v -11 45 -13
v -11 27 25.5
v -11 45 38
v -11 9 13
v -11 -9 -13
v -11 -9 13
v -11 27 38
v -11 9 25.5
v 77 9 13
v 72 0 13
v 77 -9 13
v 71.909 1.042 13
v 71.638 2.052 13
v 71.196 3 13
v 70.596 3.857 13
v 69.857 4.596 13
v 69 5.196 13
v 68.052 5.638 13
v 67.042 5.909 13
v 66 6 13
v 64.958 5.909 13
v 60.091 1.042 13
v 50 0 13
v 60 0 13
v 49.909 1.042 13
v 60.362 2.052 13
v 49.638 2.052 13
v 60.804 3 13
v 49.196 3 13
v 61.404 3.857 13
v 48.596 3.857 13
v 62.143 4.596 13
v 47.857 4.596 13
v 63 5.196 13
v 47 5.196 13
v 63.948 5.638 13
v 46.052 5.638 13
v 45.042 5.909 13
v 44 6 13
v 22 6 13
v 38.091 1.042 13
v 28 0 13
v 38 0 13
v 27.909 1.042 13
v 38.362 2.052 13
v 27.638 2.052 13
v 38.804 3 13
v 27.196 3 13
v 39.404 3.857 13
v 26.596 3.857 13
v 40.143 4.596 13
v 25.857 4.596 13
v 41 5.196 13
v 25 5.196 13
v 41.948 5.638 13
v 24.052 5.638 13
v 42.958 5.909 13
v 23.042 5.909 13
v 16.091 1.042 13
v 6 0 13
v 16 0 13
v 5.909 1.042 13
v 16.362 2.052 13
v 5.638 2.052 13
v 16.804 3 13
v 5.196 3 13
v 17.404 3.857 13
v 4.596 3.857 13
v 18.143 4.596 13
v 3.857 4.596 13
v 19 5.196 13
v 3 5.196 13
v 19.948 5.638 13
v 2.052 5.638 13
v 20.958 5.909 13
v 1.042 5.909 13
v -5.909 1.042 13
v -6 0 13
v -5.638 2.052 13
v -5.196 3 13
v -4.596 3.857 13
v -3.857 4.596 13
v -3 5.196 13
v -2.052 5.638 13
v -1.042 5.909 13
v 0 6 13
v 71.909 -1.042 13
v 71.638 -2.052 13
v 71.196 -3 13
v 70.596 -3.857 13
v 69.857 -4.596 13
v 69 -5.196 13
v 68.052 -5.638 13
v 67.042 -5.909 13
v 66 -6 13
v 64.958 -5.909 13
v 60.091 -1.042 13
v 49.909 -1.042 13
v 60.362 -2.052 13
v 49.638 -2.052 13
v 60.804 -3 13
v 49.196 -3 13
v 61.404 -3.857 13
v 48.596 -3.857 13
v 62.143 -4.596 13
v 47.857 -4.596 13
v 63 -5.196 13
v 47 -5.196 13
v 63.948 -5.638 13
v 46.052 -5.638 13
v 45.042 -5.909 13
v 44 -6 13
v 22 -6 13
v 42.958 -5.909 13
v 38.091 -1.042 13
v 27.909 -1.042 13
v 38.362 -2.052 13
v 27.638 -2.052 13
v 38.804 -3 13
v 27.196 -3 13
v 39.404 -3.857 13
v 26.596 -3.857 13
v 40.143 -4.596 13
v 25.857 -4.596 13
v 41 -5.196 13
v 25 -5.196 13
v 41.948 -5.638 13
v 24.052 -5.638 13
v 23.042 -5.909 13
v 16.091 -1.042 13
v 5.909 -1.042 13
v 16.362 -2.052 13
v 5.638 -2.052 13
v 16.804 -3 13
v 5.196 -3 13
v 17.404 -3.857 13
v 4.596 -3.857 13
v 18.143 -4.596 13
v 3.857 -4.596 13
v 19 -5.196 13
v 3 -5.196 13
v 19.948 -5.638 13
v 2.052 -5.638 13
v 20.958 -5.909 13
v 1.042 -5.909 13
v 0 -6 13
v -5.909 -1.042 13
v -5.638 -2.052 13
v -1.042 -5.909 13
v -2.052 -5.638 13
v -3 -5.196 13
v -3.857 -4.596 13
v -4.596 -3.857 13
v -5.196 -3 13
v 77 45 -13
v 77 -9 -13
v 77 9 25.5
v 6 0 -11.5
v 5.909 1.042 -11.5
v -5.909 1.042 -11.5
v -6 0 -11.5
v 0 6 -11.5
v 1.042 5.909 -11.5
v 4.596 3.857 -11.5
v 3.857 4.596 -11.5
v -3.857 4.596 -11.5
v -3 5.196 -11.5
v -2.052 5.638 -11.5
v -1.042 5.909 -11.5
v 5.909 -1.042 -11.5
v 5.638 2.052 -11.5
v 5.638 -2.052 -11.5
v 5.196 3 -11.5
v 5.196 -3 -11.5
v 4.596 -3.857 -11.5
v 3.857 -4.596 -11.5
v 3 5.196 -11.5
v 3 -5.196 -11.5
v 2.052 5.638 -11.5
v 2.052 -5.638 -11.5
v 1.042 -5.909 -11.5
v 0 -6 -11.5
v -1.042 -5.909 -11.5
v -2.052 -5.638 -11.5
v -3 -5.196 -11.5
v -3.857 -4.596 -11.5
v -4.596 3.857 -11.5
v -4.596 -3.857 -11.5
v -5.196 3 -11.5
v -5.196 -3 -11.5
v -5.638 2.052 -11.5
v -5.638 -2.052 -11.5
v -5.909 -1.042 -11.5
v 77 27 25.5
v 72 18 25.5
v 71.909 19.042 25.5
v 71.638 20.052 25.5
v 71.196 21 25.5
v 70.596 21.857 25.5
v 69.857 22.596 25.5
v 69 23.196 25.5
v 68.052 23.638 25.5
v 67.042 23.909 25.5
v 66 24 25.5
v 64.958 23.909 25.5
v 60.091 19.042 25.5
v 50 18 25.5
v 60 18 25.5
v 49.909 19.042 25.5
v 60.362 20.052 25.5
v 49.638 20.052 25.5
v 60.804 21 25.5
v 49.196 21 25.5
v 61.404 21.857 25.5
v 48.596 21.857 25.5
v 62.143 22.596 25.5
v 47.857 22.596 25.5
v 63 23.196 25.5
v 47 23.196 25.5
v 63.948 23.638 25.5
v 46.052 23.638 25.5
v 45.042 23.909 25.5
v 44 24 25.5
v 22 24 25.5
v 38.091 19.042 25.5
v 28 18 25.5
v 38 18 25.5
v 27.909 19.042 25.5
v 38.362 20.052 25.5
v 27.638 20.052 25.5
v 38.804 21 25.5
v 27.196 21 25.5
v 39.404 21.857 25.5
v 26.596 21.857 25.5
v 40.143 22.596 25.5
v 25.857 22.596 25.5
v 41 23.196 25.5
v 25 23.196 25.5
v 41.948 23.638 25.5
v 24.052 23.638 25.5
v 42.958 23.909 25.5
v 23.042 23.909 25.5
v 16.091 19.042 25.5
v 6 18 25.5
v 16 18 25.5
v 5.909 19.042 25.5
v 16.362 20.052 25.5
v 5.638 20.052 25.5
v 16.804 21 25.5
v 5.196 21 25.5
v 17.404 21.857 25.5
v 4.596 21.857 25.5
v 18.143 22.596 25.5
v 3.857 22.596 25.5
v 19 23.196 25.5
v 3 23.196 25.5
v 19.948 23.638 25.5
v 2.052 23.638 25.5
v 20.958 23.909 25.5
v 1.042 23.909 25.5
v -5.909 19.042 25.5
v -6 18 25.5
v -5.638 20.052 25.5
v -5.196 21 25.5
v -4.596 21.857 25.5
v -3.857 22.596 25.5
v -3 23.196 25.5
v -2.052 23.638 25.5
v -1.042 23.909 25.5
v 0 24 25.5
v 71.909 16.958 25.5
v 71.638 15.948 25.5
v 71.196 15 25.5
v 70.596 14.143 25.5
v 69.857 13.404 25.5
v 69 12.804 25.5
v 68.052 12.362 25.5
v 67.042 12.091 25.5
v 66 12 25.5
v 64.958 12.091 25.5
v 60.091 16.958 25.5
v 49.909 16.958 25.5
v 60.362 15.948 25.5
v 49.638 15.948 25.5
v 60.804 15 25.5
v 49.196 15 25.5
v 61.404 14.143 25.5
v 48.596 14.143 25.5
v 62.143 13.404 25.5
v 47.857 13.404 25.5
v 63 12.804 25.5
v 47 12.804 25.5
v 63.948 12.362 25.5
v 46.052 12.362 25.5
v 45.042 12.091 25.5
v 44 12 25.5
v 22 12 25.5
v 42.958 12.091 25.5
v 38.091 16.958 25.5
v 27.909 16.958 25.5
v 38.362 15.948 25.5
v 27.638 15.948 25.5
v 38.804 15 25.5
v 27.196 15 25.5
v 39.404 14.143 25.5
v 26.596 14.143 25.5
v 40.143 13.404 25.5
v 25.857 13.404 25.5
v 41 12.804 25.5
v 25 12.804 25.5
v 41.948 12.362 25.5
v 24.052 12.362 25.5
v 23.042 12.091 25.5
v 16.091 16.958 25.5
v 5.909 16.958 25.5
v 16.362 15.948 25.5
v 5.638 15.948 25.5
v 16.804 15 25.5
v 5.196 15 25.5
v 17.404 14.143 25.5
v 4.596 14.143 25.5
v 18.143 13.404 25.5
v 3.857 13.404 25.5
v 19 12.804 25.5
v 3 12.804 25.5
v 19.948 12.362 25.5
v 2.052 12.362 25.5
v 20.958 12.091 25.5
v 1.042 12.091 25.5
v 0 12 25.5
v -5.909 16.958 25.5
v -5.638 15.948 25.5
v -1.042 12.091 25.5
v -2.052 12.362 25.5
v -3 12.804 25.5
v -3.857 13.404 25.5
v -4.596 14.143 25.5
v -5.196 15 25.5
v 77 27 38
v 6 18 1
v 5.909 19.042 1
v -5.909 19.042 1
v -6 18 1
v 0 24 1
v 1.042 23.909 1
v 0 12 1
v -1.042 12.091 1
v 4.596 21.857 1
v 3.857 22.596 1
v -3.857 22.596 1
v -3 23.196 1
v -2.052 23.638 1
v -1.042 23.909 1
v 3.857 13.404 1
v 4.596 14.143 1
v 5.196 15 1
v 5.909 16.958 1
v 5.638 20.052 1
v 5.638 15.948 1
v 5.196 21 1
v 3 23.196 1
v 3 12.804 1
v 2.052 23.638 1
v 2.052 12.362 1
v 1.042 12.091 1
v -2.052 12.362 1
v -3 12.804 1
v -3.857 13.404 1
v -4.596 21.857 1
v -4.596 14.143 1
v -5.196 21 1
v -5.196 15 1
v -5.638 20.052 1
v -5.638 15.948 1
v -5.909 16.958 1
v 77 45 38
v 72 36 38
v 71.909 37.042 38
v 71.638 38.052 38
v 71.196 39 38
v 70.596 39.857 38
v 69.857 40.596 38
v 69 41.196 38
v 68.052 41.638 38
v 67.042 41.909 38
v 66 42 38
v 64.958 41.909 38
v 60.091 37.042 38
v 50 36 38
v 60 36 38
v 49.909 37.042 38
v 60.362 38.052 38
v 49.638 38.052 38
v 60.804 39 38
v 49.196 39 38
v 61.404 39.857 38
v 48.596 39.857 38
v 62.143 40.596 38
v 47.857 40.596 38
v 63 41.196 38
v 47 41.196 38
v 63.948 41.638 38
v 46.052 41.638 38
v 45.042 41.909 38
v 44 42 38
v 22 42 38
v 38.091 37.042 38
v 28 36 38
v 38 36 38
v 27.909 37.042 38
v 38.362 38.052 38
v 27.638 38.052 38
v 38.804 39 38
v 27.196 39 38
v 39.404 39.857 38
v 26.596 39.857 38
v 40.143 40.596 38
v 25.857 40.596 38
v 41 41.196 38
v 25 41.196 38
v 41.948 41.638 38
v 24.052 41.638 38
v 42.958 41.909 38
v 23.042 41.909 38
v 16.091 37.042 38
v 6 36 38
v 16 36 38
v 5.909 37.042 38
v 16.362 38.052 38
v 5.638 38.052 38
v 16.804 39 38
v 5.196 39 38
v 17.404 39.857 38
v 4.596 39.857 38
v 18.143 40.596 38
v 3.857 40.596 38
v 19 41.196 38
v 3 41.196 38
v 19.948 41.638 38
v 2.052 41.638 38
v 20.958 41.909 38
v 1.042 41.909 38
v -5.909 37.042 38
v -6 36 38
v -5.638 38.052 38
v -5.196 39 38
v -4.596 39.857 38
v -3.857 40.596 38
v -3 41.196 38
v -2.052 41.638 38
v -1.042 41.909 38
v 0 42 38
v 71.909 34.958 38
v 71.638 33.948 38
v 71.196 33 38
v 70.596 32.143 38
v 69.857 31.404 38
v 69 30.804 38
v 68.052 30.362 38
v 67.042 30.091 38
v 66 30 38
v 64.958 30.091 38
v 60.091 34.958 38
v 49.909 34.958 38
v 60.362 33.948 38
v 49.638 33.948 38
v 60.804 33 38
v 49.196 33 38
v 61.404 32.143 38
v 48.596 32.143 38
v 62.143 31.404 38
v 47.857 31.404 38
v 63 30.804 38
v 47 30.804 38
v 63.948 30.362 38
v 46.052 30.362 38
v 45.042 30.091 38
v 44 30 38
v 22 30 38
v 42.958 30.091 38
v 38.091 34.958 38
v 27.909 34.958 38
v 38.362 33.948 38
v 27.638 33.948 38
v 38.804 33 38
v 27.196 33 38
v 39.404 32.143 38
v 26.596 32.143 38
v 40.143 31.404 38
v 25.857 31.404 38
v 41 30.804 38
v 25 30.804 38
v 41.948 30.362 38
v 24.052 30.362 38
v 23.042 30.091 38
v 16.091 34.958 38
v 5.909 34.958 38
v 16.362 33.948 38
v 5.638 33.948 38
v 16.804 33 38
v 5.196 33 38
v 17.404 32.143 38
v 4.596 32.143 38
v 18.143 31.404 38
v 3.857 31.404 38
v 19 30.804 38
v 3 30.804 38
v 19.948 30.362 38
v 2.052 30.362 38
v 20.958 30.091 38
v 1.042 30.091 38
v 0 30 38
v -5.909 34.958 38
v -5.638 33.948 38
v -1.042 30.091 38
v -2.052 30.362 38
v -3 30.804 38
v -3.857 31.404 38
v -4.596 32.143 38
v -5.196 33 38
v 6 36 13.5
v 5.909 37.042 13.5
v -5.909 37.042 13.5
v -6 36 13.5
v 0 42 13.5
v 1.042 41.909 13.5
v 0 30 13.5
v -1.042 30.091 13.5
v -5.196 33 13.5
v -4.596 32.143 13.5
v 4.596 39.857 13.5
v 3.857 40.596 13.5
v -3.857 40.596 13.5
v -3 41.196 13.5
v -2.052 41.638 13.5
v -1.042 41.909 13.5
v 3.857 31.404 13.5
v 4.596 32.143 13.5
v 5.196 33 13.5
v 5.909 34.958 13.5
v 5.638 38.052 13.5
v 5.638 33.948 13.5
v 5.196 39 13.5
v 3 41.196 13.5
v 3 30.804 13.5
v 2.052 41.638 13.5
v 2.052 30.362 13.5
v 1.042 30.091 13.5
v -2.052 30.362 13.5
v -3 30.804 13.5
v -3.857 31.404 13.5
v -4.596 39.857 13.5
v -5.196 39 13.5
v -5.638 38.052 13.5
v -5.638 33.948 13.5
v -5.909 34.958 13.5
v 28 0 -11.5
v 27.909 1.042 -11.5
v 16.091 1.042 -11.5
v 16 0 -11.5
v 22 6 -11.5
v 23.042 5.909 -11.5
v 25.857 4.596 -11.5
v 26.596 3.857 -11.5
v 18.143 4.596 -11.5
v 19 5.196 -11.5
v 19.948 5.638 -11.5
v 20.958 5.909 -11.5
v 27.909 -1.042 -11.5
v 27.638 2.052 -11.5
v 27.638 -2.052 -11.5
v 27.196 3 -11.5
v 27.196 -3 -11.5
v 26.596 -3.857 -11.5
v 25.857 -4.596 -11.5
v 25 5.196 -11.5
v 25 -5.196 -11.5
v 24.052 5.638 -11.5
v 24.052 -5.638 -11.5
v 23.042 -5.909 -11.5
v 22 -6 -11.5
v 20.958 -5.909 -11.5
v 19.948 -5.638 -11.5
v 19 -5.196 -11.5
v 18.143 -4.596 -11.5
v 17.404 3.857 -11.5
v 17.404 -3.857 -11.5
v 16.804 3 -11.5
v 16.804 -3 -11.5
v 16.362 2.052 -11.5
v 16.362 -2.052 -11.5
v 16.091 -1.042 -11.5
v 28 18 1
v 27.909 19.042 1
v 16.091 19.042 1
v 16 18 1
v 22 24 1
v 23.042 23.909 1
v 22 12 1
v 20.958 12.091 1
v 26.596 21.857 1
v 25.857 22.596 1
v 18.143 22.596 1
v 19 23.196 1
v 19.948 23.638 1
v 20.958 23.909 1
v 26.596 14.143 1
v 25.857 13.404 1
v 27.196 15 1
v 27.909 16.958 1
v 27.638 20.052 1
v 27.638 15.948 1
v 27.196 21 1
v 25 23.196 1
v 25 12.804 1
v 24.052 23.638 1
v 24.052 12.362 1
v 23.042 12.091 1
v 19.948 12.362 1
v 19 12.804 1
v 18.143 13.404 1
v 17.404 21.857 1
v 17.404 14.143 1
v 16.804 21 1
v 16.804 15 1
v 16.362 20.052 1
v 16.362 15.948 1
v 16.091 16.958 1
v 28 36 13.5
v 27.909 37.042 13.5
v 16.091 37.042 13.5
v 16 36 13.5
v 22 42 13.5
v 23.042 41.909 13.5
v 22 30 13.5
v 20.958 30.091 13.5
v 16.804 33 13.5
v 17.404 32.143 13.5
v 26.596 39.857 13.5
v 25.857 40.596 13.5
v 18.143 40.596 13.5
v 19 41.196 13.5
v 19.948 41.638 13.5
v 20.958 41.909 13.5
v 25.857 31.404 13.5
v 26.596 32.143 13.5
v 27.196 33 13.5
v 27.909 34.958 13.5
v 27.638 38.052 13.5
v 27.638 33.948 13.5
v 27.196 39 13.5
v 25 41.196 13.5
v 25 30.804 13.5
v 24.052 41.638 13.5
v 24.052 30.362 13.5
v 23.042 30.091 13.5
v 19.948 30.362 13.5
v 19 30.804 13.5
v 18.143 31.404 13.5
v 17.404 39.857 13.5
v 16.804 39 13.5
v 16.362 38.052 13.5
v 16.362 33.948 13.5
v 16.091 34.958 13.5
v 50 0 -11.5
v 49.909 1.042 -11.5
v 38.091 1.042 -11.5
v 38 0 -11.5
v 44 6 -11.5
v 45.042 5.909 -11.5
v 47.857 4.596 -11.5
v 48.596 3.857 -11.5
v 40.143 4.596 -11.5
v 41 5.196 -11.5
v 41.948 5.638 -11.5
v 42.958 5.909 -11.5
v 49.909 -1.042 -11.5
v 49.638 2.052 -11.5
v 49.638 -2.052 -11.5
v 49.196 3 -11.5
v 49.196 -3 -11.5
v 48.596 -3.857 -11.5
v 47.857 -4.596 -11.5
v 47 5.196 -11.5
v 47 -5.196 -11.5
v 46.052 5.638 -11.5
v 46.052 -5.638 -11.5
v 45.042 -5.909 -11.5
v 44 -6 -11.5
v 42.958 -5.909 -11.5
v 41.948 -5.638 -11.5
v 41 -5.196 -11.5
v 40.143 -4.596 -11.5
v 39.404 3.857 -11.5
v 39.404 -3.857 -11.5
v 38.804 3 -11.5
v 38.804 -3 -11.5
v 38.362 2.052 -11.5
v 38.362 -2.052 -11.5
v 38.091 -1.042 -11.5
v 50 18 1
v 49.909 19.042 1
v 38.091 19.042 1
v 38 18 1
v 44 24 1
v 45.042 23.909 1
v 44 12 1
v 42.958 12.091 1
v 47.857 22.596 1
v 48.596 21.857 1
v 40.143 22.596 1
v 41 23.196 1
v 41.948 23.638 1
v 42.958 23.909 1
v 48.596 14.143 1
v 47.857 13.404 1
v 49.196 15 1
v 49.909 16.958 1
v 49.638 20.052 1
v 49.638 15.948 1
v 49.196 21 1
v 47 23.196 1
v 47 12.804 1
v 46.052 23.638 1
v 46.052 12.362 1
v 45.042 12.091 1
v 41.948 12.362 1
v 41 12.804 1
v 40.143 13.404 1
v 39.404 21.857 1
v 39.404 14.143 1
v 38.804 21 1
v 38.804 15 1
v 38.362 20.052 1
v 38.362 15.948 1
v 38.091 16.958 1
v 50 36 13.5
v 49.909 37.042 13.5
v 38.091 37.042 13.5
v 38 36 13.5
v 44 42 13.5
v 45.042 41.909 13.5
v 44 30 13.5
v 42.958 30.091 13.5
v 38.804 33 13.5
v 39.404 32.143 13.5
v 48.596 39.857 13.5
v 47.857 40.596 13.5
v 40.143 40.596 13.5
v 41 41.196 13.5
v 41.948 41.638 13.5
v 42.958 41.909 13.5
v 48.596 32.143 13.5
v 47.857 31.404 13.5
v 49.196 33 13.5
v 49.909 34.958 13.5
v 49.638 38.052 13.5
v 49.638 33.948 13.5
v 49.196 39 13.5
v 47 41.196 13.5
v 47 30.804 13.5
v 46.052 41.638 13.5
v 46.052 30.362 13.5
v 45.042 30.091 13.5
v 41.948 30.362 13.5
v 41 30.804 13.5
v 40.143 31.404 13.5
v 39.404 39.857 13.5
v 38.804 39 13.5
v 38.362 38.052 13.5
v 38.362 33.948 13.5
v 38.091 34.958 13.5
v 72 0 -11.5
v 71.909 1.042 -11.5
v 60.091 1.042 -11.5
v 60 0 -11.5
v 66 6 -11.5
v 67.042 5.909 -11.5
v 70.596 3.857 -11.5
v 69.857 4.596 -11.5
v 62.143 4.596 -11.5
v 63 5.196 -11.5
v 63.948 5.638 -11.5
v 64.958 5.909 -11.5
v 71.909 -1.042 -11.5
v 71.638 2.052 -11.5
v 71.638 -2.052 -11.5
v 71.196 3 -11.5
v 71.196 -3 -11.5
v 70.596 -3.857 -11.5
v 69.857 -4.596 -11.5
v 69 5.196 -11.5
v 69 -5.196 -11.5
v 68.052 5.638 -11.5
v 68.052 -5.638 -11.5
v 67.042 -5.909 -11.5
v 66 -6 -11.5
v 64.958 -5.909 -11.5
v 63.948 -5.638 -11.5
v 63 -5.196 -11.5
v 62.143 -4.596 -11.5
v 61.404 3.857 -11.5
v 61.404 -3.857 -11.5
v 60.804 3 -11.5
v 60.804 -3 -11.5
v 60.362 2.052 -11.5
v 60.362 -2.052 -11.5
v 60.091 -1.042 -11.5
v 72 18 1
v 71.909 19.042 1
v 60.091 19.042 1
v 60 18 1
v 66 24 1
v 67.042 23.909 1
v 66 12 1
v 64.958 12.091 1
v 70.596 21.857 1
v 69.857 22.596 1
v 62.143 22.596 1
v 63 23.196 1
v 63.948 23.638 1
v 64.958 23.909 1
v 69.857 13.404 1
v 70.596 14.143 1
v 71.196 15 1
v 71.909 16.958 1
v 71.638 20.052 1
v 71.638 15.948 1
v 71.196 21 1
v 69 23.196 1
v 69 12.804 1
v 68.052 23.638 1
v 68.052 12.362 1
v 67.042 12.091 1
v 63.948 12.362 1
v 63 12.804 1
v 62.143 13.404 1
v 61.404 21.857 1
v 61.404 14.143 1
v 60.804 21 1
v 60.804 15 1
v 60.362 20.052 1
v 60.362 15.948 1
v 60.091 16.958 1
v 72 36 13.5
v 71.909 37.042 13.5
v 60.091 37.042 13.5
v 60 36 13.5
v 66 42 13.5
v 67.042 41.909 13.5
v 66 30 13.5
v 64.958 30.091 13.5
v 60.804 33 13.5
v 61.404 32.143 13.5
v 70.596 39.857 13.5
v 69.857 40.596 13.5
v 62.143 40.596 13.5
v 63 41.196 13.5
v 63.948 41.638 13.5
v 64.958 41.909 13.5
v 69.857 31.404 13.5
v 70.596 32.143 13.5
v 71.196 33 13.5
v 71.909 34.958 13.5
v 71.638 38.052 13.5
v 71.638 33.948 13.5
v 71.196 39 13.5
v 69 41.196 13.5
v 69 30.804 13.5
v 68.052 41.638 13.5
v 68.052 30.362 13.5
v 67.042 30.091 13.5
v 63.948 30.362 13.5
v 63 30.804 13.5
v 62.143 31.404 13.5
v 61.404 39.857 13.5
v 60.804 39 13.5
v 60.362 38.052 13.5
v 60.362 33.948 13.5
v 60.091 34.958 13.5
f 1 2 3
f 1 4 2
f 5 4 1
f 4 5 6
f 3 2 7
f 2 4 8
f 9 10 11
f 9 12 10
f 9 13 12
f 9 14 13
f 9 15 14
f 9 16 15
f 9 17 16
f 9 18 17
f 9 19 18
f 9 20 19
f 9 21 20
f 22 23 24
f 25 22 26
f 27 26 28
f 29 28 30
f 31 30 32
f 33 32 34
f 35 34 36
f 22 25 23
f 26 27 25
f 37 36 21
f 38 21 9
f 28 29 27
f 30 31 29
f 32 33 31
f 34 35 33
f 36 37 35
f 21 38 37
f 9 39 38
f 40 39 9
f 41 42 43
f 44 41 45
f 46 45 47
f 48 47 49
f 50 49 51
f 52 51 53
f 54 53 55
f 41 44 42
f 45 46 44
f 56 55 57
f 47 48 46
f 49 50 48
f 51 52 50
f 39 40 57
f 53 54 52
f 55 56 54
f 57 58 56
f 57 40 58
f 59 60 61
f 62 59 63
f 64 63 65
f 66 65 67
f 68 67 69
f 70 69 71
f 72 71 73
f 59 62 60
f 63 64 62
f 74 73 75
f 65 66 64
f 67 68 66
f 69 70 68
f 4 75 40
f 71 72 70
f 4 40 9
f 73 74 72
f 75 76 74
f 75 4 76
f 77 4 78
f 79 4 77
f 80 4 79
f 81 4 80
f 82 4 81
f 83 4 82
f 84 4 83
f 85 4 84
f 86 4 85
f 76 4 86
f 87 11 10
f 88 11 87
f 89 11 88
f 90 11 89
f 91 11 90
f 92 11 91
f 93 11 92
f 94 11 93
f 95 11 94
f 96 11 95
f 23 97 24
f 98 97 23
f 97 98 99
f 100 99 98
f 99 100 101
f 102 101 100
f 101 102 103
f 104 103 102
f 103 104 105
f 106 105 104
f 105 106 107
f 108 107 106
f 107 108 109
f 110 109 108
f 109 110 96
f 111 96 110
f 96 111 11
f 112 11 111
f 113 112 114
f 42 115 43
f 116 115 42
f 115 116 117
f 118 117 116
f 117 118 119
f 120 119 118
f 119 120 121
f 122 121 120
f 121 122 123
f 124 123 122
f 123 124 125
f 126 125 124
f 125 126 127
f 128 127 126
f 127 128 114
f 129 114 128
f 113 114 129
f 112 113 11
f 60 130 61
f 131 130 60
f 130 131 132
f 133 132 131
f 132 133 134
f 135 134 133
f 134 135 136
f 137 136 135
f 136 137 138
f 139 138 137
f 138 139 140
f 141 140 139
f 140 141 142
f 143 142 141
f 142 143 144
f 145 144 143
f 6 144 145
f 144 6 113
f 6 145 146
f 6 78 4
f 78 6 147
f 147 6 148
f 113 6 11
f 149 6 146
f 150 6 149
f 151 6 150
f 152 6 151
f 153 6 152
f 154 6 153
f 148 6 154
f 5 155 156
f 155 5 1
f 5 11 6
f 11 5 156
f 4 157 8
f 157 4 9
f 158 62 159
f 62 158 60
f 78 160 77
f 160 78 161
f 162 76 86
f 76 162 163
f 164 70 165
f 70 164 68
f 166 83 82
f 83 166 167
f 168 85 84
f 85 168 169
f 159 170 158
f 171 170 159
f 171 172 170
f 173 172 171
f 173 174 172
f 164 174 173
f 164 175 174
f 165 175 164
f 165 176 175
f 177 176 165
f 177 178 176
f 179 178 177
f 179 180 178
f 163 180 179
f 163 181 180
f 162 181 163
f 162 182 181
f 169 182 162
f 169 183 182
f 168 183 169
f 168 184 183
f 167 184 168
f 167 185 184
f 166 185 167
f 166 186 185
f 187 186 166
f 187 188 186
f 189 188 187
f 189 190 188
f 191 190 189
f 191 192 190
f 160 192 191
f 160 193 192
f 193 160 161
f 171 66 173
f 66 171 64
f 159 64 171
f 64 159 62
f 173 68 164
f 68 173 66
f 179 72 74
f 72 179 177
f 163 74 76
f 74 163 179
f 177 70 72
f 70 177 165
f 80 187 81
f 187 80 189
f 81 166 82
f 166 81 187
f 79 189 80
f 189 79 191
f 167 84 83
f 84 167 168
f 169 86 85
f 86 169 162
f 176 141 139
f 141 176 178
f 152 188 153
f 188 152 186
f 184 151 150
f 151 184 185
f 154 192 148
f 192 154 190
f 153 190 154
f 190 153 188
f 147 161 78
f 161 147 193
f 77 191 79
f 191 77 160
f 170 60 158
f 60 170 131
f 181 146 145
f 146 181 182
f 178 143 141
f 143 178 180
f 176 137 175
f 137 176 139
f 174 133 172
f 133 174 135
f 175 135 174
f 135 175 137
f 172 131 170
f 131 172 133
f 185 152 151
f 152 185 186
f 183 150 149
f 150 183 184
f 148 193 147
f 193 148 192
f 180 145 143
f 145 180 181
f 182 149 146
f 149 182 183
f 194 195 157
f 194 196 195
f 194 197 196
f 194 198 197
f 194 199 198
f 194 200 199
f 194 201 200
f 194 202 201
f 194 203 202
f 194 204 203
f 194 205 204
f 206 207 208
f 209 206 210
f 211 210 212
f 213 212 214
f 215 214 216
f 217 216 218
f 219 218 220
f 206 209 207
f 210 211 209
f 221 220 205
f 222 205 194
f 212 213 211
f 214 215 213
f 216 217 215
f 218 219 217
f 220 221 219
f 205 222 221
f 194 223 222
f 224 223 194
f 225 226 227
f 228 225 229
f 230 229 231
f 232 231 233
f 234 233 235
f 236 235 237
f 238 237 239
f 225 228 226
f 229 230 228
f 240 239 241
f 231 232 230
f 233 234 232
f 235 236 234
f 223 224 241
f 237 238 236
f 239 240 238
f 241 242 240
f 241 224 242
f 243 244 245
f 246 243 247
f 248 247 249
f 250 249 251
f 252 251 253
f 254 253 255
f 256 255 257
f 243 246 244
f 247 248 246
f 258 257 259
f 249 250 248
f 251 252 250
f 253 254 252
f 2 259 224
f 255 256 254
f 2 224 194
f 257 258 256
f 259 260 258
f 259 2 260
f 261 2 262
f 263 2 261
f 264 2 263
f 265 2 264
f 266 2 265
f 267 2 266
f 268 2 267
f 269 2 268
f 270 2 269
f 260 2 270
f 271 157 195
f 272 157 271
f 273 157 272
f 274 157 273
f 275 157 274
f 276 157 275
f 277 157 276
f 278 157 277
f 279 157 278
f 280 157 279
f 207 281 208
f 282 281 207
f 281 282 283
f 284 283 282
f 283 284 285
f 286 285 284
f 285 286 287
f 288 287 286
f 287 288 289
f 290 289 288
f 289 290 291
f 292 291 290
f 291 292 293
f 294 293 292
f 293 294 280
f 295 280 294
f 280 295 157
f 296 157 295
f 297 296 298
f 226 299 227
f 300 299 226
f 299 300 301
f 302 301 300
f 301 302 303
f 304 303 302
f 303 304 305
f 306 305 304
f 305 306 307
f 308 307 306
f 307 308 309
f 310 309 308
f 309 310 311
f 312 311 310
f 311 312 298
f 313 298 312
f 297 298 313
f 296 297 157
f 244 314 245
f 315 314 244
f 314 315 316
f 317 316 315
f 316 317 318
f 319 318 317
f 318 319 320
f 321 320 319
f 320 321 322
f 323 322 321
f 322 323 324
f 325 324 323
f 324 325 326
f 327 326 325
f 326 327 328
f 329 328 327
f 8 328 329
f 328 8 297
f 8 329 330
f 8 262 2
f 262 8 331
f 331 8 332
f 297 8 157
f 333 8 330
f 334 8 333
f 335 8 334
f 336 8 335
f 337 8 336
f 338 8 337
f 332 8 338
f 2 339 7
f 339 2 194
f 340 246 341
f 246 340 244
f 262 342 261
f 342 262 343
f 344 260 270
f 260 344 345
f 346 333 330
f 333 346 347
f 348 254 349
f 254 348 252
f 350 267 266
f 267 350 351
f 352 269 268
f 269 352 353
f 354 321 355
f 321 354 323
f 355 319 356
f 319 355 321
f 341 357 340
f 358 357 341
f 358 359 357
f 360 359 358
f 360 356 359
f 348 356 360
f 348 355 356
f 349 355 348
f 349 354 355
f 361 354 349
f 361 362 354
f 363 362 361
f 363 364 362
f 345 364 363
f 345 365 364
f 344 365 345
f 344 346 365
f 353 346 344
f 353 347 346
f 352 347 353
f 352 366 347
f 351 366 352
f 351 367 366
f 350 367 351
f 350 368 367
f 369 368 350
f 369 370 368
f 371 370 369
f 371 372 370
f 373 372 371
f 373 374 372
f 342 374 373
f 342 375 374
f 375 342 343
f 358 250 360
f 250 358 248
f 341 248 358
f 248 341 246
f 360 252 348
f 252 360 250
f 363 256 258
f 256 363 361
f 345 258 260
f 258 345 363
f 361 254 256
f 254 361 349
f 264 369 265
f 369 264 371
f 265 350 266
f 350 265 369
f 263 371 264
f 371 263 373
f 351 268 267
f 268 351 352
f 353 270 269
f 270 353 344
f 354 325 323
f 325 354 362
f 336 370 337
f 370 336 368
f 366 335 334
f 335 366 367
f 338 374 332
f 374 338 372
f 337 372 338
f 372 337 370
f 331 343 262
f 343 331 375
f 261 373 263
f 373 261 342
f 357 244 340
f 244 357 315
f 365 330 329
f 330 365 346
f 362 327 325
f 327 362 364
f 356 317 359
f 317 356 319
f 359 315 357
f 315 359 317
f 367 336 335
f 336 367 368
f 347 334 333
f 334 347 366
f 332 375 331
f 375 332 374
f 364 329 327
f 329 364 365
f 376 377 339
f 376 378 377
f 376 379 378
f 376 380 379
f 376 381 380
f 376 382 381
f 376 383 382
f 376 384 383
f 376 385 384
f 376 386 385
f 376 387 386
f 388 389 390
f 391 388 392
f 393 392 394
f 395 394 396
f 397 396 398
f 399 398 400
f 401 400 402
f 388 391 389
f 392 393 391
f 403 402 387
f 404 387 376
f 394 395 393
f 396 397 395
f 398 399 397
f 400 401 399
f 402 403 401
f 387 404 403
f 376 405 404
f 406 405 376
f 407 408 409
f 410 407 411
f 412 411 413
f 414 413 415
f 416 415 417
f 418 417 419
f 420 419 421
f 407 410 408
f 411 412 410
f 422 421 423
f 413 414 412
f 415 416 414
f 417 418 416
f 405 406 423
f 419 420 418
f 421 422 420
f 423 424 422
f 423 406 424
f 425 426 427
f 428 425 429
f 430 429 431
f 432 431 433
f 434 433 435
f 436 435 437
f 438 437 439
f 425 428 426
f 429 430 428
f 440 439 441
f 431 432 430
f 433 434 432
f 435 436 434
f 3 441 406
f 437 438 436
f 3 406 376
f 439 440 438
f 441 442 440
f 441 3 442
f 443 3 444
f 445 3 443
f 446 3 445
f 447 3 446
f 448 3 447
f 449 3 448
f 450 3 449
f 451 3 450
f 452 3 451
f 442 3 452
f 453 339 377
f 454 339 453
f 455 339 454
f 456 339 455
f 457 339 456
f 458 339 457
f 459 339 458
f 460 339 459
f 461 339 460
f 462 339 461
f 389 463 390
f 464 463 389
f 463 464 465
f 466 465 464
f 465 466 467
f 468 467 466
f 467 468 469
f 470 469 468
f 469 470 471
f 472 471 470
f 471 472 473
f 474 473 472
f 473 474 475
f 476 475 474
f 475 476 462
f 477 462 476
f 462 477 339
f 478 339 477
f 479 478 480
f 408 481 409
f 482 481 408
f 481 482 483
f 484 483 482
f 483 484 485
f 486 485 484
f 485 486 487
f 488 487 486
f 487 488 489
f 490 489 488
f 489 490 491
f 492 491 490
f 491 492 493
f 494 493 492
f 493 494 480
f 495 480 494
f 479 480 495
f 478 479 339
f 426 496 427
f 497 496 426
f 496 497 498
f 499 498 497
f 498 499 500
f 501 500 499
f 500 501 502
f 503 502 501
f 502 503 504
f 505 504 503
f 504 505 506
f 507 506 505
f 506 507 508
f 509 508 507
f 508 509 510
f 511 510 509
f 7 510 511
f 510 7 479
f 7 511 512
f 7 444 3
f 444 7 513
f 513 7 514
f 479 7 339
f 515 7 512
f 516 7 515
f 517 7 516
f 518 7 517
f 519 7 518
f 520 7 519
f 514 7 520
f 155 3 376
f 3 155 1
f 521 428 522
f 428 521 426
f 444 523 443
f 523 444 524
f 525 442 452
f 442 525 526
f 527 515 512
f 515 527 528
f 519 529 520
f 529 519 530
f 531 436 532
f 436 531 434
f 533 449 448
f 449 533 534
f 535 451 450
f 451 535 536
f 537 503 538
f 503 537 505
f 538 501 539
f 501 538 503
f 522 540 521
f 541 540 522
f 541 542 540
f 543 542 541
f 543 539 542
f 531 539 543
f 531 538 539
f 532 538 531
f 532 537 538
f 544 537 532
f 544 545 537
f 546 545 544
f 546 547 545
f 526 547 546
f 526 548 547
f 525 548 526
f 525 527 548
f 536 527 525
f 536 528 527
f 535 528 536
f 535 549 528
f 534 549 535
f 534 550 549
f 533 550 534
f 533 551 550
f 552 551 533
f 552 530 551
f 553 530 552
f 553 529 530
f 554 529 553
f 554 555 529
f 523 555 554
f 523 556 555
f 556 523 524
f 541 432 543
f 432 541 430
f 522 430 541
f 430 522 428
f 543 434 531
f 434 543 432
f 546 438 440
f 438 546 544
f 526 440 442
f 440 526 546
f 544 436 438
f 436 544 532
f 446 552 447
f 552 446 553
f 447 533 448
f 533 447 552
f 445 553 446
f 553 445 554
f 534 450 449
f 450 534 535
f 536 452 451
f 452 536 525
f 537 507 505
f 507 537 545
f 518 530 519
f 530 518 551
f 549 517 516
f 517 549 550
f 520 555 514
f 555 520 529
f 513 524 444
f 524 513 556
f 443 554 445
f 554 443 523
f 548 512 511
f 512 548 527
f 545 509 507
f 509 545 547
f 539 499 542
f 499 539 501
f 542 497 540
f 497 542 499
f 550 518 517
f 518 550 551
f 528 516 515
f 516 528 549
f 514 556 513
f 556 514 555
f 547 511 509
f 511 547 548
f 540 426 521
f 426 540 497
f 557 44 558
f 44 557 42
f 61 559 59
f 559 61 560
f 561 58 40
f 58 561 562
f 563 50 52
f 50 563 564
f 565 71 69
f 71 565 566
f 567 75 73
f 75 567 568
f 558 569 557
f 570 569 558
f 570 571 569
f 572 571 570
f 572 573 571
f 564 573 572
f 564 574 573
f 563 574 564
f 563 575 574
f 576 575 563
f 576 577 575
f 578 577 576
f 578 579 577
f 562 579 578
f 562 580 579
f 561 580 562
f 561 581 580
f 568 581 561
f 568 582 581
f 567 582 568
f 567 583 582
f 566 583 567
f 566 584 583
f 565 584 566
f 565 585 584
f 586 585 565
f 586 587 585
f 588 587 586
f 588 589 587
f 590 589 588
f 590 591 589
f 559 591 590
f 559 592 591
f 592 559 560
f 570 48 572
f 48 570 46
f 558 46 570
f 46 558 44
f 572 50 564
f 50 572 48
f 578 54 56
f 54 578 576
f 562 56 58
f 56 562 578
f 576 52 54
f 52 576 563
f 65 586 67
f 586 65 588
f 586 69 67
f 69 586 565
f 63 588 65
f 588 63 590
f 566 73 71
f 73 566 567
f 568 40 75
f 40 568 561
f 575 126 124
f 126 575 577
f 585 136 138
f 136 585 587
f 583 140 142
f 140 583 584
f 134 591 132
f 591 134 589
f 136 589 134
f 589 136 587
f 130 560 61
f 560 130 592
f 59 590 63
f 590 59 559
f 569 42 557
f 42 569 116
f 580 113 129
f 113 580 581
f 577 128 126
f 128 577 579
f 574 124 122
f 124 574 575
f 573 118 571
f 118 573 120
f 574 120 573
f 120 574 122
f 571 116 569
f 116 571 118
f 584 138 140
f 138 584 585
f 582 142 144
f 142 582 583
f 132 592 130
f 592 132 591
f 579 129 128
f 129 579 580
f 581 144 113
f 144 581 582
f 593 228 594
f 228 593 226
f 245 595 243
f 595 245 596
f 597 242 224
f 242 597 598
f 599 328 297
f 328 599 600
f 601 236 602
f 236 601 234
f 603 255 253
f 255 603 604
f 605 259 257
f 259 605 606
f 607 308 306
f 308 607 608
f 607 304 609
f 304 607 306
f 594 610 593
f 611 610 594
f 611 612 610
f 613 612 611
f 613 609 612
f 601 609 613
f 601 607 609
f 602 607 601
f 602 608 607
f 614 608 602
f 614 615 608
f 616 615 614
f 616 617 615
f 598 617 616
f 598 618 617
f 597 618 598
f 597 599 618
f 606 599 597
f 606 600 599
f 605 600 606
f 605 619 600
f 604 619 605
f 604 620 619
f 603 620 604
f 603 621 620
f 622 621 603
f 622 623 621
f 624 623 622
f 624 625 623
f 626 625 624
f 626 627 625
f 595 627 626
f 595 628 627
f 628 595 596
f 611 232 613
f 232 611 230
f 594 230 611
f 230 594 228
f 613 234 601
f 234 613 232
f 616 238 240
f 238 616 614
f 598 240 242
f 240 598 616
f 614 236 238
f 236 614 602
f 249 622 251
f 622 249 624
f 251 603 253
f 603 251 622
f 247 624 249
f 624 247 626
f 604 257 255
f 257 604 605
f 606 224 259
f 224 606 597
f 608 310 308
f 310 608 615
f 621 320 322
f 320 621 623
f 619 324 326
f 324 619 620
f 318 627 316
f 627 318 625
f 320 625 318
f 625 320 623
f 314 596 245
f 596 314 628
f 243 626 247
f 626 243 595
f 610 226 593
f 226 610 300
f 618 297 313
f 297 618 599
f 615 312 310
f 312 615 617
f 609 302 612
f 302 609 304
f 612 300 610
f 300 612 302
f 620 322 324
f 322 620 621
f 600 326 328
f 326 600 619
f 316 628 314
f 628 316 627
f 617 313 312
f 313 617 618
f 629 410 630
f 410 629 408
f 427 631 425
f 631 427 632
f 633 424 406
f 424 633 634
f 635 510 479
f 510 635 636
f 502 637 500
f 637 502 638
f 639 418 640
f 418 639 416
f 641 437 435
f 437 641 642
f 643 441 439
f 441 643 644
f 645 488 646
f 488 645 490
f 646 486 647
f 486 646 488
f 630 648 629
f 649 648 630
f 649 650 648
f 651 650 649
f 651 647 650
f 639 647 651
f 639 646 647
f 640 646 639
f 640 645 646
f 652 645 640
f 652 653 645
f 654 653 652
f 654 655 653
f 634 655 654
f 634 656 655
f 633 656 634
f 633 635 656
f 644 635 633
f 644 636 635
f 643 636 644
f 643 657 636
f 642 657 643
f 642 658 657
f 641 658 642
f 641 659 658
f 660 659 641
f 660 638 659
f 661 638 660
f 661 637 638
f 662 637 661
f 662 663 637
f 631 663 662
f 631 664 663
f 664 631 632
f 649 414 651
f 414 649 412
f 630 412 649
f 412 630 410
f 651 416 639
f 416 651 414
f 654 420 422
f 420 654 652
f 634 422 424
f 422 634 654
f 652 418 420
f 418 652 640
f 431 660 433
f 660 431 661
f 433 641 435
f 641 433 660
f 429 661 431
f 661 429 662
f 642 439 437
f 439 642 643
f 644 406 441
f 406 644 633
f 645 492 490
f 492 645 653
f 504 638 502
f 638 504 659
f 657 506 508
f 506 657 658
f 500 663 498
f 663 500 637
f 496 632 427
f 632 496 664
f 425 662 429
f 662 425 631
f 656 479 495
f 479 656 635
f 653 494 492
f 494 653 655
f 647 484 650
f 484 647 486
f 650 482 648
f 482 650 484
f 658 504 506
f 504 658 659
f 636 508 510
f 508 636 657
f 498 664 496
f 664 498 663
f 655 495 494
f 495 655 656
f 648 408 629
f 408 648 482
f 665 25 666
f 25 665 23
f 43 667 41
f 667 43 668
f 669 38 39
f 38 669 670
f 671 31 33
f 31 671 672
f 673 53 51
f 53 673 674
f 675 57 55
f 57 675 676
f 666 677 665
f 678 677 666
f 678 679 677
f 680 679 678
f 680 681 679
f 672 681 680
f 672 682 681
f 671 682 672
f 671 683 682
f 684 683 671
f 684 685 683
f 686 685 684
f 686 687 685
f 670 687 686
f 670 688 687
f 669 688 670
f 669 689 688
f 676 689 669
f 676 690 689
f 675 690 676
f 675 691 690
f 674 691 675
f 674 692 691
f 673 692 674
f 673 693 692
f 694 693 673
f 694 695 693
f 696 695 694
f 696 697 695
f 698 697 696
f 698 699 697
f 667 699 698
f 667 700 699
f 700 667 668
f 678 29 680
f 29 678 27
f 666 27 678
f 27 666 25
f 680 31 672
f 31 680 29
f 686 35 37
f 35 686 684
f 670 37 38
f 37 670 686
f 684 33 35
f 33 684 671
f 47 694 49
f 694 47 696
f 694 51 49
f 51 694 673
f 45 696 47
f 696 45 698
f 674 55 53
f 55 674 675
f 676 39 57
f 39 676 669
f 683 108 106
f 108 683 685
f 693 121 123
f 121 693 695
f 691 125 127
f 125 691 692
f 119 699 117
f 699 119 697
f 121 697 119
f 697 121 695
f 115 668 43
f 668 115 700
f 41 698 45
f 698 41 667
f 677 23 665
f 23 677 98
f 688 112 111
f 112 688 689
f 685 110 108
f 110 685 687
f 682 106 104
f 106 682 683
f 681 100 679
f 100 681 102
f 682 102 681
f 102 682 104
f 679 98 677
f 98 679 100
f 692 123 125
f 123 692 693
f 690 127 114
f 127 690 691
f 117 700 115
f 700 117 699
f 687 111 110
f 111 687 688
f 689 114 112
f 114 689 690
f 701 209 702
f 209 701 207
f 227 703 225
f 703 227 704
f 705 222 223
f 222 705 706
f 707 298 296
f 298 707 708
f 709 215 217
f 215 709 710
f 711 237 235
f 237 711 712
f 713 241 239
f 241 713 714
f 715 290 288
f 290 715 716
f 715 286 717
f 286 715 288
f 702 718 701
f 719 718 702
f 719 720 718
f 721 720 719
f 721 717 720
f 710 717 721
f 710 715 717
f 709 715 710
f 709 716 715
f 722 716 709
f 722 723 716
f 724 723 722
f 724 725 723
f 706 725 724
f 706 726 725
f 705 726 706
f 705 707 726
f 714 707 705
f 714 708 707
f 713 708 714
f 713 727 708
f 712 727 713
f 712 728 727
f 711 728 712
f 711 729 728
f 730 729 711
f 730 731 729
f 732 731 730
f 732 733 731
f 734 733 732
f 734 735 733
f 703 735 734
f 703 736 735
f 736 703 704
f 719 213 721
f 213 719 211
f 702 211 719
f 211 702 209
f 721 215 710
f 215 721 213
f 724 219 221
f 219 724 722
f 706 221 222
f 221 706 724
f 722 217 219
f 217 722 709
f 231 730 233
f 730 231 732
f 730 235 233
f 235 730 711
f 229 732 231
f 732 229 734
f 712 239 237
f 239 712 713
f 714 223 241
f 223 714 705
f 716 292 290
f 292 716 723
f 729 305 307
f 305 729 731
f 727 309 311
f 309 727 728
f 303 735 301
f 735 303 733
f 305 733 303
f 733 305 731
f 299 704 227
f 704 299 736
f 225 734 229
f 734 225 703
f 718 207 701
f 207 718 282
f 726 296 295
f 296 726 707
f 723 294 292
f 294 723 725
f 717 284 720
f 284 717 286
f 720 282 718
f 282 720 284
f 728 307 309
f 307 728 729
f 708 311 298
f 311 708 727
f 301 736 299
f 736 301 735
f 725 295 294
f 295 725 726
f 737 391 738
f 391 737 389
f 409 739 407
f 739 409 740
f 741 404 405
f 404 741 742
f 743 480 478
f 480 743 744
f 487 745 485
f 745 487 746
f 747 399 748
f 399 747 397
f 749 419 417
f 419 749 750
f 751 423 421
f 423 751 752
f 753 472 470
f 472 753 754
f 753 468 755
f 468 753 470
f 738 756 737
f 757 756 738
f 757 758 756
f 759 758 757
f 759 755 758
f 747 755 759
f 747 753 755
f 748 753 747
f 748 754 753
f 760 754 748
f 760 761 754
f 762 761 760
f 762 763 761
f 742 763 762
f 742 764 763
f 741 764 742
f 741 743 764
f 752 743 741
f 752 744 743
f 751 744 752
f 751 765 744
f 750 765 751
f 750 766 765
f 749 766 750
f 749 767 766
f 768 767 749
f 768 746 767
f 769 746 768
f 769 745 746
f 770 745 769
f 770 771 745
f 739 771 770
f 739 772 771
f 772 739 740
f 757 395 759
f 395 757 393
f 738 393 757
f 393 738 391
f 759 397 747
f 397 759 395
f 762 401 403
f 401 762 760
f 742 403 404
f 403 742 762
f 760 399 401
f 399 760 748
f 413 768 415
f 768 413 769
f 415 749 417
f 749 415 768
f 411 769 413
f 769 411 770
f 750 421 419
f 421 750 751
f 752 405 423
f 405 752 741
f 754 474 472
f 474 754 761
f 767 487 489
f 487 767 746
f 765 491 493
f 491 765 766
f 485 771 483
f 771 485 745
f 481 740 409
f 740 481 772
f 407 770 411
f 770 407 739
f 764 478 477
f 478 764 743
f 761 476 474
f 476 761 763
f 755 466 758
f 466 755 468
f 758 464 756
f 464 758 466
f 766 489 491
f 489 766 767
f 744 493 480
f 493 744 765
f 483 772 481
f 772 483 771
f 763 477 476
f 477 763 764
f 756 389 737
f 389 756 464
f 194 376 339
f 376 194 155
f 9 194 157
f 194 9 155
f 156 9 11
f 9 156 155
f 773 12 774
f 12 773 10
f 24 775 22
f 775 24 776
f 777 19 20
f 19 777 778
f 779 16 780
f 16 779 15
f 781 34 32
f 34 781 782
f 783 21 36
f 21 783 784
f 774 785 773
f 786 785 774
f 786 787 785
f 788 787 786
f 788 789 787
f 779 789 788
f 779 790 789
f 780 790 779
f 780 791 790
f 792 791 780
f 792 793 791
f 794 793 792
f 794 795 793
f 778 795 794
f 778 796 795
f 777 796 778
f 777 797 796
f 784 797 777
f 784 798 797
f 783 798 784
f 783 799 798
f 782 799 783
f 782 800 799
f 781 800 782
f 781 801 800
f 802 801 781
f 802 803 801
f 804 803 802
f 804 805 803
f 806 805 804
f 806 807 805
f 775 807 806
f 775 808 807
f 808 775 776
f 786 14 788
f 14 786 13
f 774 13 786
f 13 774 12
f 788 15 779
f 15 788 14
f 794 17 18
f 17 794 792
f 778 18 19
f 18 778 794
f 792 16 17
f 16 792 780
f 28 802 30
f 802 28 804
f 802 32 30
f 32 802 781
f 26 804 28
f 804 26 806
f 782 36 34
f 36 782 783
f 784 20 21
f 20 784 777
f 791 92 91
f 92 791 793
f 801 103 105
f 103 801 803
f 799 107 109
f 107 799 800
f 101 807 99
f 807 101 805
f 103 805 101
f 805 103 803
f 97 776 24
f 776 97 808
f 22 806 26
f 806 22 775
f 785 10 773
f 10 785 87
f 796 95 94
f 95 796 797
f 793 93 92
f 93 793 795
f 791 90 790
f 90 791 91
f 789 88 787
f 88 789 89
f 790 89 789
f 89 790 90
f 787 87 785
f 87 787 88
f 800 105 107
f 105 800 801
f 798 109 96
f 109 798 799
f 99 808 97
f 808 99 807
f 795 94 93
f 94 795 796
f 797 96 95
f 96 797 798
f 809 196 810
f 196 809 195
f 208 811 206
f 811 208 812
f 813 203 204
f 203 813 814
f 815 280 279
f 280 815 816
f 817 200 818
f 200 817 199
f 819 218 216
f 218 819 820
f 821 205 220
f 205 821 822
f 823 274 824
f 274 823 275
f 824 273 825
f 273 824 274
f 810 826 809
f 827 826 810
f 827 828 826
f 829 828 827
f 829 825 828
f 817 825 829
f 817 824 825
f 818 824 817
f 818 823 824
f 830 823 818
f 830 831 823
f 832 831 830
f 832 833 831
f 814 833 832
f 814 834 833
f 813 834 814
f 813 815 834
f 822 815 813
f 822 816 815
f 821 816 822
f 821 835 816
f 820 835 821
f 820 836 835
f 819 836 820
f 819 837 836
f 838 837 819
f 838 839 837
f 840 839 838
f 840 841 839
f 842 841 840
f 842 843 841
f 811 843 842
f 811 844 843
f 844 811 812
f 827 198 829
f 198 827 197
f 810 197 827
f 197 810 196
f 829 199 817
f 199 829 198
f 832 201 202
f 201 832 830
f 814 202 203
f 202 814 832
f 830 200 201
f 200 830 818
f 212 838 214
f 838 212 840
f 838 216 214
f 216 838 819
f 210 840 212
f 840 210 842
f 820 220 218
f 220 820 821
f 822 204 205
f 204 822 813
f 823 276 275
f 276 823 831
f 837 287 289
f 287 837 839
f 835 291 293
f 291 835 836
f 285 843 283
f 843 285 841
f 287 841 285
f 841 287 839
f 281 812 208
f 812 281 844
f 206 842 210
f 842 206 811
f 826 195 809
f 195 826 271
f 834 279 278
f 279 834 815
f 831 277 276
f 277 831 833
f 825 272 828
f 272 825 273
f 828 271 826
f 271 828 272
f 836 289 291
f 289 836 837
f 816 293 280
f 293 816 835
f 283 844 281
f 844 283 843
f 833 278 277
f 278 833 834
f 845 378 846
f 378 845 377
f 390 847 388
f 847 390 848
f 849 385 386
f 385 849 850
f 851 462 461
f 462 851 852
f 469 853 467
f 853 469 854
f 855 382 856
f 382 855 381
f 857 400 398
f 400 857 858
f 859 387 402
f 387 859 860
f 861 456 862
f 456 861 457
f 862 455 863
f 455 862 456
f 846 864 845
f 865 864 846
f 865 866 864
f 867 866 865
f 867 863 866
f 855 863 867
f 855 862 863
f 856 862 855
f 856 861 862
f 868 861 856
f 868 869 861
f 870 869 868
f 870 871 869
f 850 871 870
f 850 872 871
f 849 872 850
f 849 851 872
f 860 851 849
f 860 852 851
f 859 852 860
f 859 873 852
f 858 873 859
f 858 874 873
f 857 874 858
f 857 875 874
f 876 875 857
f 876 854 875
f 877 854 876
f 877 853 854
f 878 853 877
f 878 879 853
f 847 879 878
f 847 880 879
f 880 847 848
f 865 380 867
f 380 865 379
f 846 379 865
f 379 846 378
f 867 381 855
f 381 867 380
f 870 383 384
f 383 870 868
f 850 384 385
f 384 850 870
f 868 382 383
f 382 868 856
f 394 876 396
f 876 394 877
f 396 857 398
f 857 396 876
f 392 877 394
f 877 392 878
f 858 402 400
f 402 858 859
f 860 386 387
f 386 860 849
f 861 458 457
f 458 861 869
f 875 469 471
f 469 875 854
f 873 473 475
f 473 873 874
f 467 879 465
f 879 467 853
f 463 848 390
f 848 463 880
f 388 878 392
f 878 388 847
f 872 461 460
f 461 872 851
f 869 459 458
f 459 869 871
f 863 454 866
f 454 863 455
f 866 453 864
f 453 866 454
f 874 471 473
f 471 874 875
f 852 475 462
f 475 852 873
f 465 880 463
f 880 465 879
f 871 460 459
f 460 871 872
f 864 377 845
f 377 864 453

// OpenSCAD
rows = 3;
cols = 4;

cartdiam = 12;
cartdepth = 25;

xmargin = 5;
ymargin = 3;

blockx = cartdiam + (2*xmargin); //20;
blocky = cartdiam + (2*ymargin); //15;

floor = 1;

stepz = cartdepth/2;

$fn = 36;

module mkblock(offset) {
    difference(){
        cube([blockx, blocky, (offset*stepz)+cartdepth+floor], center=true);
        translate([0,0,floor+(offset*stepz*0.5)]){
            cylinder(d=cartdiam, h=cartdepth, center=true);
        }
    }
}

for (x = [ 0 : (cols - 1)]) {
    for (y = [ 0 : (rows - 1)]) {
        translate([x*blockx,y*blocky,y*stepz*0.5]){
            mkblock(offset=y);
        }
    }
}
